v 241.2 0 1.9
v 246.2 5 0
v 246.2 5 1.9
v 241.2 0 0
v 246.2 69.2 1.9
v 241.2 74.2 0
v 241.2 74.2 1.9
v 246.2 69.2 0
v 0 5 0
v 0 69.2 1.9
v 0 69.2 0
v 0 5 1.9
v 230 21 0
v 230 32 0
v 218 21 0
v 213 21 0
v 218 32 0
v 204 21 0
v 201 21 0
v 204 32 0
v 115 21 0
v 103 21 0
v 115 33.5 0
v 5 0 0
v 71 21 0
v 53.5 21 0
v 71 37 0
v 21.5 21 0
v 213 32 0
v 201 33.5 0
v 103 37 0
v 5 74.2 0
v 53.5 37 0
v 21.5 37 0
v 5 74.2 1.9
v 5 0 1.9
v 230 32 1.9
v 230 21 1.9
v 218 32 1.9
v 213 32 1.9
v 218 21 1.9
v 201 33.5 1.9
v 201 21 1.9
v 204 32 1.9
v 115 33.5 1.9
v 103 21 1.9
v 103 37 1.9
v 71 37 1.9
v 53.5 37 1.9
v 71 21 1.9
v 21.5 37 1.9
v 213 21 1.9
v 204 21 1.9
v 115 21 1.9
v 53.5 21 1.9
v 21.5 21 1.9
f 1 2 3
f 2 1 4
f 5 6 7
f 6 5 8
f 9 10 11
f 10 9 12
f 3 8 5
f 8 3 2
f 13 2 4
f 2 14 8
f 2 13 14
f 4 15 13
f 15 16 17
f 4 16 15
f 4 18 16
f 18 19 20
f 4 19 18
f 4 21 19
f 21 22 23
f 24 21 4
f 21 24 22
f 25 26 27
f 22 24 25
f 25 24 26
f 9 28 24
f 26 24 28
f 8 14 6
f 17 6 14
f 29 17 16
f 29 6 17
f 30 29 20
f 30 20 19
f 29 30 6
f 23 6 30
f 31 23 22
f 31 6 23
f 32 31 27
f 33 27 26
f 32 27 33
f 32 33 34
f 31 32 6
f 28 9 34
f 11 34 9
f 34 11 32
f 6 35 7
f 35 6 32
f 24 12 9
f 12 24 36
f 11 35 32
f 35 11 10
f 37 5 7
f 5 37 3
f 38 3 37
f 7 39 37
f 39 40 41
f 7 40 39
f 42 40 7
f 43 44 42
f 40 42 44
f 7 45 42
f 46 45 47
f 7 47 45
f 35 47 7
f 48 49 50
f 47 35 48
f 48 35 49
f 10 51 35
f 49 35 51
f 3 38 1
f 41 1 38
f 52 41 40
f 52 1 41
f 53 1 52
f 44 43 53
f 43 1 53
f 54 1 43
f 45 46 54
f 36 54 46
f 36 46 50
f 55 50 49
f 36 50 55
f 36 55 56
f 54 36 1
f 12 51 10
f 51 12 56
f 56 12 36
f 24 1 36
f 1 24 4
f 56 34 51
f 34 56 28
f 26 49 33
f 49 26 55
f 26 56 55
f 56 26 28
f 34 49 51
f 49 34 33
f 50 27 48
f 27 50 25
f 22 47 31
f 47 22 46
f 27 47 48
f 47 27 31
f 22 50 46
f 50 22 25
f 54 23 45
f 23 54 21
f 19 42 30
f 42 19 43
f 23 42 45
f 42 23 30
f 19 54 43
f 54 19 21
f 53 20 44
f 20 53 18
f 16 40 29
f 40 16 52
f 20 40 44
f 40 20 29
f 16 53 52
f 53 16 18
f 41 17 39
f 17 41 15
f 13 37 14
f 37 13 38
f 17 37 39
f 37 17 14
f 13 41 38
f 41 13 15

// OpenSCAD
$fn = 20;

thick = 2;
tf = 0.95;

xmax = 250;
ymax = 180+thick;
zmax = 39*2;

dev_x = 21.5;
dev_bot = 21;

edge=5;

//rotate([180,0,0])
    shape();

module shape() {
    difference(){
        base_shape();
        
        translate([dev_x, dev_bot, 0])
            sio();
        
        translate([dev_x+17.5+32, dev_bot, 0])
            sio();
        
        translate([dev_x+17.5+32+32+12, dev_bot, 0])
            serpar();

        translate([dev_x+17.5+32+32+12+86+3, dev_bot, 0])
            barrel();
        
        translate([dev_x+17.5+32+32+12+86+3+9+5, dev_bot, 0])
            usb();
        
    }
    
    /*
    translate([edge, zmax-4*thick-edge, -thick])
        cube([xmax-2*edge-4*thick, 3, 3]);

    translate([edge, 32, -thick])
        cube([xmax-2*edge-4*thick, 3, 3]);

    translate([edge, 5, -thick])
        cube([xmax-2*edge-4*thick, 3, 3]);
    */

}

module usb() {
    cube([12, 11, thick]);
}

module barrel() {
    cube([9, 11, thick]);
}

module serpar() {
    cube([86, 12.5, thick]);
}

module sio() {
    cube([32, 16, thick]);
}

module base_shape() {
    
    rotate([0,0,0])
    linear_extrude(thick * tf)
        base_shape_2d(thick * tf);

}

module base_shape_2d(th) {
    
    echo("width:", xmax-2*th);
    echo("height:", zmax-2*th);
    
    polygon([[0, zmax-edge-2*th], [0, edge], [edge,0], [xmax-edge-2*th, 0], [xmax-2*th, edge], [xmax-2*th, zmax-edge-2*th],[xmax-edge-2*th, zmax-2*th], [edge, zmax-2*th]  ]);
}
